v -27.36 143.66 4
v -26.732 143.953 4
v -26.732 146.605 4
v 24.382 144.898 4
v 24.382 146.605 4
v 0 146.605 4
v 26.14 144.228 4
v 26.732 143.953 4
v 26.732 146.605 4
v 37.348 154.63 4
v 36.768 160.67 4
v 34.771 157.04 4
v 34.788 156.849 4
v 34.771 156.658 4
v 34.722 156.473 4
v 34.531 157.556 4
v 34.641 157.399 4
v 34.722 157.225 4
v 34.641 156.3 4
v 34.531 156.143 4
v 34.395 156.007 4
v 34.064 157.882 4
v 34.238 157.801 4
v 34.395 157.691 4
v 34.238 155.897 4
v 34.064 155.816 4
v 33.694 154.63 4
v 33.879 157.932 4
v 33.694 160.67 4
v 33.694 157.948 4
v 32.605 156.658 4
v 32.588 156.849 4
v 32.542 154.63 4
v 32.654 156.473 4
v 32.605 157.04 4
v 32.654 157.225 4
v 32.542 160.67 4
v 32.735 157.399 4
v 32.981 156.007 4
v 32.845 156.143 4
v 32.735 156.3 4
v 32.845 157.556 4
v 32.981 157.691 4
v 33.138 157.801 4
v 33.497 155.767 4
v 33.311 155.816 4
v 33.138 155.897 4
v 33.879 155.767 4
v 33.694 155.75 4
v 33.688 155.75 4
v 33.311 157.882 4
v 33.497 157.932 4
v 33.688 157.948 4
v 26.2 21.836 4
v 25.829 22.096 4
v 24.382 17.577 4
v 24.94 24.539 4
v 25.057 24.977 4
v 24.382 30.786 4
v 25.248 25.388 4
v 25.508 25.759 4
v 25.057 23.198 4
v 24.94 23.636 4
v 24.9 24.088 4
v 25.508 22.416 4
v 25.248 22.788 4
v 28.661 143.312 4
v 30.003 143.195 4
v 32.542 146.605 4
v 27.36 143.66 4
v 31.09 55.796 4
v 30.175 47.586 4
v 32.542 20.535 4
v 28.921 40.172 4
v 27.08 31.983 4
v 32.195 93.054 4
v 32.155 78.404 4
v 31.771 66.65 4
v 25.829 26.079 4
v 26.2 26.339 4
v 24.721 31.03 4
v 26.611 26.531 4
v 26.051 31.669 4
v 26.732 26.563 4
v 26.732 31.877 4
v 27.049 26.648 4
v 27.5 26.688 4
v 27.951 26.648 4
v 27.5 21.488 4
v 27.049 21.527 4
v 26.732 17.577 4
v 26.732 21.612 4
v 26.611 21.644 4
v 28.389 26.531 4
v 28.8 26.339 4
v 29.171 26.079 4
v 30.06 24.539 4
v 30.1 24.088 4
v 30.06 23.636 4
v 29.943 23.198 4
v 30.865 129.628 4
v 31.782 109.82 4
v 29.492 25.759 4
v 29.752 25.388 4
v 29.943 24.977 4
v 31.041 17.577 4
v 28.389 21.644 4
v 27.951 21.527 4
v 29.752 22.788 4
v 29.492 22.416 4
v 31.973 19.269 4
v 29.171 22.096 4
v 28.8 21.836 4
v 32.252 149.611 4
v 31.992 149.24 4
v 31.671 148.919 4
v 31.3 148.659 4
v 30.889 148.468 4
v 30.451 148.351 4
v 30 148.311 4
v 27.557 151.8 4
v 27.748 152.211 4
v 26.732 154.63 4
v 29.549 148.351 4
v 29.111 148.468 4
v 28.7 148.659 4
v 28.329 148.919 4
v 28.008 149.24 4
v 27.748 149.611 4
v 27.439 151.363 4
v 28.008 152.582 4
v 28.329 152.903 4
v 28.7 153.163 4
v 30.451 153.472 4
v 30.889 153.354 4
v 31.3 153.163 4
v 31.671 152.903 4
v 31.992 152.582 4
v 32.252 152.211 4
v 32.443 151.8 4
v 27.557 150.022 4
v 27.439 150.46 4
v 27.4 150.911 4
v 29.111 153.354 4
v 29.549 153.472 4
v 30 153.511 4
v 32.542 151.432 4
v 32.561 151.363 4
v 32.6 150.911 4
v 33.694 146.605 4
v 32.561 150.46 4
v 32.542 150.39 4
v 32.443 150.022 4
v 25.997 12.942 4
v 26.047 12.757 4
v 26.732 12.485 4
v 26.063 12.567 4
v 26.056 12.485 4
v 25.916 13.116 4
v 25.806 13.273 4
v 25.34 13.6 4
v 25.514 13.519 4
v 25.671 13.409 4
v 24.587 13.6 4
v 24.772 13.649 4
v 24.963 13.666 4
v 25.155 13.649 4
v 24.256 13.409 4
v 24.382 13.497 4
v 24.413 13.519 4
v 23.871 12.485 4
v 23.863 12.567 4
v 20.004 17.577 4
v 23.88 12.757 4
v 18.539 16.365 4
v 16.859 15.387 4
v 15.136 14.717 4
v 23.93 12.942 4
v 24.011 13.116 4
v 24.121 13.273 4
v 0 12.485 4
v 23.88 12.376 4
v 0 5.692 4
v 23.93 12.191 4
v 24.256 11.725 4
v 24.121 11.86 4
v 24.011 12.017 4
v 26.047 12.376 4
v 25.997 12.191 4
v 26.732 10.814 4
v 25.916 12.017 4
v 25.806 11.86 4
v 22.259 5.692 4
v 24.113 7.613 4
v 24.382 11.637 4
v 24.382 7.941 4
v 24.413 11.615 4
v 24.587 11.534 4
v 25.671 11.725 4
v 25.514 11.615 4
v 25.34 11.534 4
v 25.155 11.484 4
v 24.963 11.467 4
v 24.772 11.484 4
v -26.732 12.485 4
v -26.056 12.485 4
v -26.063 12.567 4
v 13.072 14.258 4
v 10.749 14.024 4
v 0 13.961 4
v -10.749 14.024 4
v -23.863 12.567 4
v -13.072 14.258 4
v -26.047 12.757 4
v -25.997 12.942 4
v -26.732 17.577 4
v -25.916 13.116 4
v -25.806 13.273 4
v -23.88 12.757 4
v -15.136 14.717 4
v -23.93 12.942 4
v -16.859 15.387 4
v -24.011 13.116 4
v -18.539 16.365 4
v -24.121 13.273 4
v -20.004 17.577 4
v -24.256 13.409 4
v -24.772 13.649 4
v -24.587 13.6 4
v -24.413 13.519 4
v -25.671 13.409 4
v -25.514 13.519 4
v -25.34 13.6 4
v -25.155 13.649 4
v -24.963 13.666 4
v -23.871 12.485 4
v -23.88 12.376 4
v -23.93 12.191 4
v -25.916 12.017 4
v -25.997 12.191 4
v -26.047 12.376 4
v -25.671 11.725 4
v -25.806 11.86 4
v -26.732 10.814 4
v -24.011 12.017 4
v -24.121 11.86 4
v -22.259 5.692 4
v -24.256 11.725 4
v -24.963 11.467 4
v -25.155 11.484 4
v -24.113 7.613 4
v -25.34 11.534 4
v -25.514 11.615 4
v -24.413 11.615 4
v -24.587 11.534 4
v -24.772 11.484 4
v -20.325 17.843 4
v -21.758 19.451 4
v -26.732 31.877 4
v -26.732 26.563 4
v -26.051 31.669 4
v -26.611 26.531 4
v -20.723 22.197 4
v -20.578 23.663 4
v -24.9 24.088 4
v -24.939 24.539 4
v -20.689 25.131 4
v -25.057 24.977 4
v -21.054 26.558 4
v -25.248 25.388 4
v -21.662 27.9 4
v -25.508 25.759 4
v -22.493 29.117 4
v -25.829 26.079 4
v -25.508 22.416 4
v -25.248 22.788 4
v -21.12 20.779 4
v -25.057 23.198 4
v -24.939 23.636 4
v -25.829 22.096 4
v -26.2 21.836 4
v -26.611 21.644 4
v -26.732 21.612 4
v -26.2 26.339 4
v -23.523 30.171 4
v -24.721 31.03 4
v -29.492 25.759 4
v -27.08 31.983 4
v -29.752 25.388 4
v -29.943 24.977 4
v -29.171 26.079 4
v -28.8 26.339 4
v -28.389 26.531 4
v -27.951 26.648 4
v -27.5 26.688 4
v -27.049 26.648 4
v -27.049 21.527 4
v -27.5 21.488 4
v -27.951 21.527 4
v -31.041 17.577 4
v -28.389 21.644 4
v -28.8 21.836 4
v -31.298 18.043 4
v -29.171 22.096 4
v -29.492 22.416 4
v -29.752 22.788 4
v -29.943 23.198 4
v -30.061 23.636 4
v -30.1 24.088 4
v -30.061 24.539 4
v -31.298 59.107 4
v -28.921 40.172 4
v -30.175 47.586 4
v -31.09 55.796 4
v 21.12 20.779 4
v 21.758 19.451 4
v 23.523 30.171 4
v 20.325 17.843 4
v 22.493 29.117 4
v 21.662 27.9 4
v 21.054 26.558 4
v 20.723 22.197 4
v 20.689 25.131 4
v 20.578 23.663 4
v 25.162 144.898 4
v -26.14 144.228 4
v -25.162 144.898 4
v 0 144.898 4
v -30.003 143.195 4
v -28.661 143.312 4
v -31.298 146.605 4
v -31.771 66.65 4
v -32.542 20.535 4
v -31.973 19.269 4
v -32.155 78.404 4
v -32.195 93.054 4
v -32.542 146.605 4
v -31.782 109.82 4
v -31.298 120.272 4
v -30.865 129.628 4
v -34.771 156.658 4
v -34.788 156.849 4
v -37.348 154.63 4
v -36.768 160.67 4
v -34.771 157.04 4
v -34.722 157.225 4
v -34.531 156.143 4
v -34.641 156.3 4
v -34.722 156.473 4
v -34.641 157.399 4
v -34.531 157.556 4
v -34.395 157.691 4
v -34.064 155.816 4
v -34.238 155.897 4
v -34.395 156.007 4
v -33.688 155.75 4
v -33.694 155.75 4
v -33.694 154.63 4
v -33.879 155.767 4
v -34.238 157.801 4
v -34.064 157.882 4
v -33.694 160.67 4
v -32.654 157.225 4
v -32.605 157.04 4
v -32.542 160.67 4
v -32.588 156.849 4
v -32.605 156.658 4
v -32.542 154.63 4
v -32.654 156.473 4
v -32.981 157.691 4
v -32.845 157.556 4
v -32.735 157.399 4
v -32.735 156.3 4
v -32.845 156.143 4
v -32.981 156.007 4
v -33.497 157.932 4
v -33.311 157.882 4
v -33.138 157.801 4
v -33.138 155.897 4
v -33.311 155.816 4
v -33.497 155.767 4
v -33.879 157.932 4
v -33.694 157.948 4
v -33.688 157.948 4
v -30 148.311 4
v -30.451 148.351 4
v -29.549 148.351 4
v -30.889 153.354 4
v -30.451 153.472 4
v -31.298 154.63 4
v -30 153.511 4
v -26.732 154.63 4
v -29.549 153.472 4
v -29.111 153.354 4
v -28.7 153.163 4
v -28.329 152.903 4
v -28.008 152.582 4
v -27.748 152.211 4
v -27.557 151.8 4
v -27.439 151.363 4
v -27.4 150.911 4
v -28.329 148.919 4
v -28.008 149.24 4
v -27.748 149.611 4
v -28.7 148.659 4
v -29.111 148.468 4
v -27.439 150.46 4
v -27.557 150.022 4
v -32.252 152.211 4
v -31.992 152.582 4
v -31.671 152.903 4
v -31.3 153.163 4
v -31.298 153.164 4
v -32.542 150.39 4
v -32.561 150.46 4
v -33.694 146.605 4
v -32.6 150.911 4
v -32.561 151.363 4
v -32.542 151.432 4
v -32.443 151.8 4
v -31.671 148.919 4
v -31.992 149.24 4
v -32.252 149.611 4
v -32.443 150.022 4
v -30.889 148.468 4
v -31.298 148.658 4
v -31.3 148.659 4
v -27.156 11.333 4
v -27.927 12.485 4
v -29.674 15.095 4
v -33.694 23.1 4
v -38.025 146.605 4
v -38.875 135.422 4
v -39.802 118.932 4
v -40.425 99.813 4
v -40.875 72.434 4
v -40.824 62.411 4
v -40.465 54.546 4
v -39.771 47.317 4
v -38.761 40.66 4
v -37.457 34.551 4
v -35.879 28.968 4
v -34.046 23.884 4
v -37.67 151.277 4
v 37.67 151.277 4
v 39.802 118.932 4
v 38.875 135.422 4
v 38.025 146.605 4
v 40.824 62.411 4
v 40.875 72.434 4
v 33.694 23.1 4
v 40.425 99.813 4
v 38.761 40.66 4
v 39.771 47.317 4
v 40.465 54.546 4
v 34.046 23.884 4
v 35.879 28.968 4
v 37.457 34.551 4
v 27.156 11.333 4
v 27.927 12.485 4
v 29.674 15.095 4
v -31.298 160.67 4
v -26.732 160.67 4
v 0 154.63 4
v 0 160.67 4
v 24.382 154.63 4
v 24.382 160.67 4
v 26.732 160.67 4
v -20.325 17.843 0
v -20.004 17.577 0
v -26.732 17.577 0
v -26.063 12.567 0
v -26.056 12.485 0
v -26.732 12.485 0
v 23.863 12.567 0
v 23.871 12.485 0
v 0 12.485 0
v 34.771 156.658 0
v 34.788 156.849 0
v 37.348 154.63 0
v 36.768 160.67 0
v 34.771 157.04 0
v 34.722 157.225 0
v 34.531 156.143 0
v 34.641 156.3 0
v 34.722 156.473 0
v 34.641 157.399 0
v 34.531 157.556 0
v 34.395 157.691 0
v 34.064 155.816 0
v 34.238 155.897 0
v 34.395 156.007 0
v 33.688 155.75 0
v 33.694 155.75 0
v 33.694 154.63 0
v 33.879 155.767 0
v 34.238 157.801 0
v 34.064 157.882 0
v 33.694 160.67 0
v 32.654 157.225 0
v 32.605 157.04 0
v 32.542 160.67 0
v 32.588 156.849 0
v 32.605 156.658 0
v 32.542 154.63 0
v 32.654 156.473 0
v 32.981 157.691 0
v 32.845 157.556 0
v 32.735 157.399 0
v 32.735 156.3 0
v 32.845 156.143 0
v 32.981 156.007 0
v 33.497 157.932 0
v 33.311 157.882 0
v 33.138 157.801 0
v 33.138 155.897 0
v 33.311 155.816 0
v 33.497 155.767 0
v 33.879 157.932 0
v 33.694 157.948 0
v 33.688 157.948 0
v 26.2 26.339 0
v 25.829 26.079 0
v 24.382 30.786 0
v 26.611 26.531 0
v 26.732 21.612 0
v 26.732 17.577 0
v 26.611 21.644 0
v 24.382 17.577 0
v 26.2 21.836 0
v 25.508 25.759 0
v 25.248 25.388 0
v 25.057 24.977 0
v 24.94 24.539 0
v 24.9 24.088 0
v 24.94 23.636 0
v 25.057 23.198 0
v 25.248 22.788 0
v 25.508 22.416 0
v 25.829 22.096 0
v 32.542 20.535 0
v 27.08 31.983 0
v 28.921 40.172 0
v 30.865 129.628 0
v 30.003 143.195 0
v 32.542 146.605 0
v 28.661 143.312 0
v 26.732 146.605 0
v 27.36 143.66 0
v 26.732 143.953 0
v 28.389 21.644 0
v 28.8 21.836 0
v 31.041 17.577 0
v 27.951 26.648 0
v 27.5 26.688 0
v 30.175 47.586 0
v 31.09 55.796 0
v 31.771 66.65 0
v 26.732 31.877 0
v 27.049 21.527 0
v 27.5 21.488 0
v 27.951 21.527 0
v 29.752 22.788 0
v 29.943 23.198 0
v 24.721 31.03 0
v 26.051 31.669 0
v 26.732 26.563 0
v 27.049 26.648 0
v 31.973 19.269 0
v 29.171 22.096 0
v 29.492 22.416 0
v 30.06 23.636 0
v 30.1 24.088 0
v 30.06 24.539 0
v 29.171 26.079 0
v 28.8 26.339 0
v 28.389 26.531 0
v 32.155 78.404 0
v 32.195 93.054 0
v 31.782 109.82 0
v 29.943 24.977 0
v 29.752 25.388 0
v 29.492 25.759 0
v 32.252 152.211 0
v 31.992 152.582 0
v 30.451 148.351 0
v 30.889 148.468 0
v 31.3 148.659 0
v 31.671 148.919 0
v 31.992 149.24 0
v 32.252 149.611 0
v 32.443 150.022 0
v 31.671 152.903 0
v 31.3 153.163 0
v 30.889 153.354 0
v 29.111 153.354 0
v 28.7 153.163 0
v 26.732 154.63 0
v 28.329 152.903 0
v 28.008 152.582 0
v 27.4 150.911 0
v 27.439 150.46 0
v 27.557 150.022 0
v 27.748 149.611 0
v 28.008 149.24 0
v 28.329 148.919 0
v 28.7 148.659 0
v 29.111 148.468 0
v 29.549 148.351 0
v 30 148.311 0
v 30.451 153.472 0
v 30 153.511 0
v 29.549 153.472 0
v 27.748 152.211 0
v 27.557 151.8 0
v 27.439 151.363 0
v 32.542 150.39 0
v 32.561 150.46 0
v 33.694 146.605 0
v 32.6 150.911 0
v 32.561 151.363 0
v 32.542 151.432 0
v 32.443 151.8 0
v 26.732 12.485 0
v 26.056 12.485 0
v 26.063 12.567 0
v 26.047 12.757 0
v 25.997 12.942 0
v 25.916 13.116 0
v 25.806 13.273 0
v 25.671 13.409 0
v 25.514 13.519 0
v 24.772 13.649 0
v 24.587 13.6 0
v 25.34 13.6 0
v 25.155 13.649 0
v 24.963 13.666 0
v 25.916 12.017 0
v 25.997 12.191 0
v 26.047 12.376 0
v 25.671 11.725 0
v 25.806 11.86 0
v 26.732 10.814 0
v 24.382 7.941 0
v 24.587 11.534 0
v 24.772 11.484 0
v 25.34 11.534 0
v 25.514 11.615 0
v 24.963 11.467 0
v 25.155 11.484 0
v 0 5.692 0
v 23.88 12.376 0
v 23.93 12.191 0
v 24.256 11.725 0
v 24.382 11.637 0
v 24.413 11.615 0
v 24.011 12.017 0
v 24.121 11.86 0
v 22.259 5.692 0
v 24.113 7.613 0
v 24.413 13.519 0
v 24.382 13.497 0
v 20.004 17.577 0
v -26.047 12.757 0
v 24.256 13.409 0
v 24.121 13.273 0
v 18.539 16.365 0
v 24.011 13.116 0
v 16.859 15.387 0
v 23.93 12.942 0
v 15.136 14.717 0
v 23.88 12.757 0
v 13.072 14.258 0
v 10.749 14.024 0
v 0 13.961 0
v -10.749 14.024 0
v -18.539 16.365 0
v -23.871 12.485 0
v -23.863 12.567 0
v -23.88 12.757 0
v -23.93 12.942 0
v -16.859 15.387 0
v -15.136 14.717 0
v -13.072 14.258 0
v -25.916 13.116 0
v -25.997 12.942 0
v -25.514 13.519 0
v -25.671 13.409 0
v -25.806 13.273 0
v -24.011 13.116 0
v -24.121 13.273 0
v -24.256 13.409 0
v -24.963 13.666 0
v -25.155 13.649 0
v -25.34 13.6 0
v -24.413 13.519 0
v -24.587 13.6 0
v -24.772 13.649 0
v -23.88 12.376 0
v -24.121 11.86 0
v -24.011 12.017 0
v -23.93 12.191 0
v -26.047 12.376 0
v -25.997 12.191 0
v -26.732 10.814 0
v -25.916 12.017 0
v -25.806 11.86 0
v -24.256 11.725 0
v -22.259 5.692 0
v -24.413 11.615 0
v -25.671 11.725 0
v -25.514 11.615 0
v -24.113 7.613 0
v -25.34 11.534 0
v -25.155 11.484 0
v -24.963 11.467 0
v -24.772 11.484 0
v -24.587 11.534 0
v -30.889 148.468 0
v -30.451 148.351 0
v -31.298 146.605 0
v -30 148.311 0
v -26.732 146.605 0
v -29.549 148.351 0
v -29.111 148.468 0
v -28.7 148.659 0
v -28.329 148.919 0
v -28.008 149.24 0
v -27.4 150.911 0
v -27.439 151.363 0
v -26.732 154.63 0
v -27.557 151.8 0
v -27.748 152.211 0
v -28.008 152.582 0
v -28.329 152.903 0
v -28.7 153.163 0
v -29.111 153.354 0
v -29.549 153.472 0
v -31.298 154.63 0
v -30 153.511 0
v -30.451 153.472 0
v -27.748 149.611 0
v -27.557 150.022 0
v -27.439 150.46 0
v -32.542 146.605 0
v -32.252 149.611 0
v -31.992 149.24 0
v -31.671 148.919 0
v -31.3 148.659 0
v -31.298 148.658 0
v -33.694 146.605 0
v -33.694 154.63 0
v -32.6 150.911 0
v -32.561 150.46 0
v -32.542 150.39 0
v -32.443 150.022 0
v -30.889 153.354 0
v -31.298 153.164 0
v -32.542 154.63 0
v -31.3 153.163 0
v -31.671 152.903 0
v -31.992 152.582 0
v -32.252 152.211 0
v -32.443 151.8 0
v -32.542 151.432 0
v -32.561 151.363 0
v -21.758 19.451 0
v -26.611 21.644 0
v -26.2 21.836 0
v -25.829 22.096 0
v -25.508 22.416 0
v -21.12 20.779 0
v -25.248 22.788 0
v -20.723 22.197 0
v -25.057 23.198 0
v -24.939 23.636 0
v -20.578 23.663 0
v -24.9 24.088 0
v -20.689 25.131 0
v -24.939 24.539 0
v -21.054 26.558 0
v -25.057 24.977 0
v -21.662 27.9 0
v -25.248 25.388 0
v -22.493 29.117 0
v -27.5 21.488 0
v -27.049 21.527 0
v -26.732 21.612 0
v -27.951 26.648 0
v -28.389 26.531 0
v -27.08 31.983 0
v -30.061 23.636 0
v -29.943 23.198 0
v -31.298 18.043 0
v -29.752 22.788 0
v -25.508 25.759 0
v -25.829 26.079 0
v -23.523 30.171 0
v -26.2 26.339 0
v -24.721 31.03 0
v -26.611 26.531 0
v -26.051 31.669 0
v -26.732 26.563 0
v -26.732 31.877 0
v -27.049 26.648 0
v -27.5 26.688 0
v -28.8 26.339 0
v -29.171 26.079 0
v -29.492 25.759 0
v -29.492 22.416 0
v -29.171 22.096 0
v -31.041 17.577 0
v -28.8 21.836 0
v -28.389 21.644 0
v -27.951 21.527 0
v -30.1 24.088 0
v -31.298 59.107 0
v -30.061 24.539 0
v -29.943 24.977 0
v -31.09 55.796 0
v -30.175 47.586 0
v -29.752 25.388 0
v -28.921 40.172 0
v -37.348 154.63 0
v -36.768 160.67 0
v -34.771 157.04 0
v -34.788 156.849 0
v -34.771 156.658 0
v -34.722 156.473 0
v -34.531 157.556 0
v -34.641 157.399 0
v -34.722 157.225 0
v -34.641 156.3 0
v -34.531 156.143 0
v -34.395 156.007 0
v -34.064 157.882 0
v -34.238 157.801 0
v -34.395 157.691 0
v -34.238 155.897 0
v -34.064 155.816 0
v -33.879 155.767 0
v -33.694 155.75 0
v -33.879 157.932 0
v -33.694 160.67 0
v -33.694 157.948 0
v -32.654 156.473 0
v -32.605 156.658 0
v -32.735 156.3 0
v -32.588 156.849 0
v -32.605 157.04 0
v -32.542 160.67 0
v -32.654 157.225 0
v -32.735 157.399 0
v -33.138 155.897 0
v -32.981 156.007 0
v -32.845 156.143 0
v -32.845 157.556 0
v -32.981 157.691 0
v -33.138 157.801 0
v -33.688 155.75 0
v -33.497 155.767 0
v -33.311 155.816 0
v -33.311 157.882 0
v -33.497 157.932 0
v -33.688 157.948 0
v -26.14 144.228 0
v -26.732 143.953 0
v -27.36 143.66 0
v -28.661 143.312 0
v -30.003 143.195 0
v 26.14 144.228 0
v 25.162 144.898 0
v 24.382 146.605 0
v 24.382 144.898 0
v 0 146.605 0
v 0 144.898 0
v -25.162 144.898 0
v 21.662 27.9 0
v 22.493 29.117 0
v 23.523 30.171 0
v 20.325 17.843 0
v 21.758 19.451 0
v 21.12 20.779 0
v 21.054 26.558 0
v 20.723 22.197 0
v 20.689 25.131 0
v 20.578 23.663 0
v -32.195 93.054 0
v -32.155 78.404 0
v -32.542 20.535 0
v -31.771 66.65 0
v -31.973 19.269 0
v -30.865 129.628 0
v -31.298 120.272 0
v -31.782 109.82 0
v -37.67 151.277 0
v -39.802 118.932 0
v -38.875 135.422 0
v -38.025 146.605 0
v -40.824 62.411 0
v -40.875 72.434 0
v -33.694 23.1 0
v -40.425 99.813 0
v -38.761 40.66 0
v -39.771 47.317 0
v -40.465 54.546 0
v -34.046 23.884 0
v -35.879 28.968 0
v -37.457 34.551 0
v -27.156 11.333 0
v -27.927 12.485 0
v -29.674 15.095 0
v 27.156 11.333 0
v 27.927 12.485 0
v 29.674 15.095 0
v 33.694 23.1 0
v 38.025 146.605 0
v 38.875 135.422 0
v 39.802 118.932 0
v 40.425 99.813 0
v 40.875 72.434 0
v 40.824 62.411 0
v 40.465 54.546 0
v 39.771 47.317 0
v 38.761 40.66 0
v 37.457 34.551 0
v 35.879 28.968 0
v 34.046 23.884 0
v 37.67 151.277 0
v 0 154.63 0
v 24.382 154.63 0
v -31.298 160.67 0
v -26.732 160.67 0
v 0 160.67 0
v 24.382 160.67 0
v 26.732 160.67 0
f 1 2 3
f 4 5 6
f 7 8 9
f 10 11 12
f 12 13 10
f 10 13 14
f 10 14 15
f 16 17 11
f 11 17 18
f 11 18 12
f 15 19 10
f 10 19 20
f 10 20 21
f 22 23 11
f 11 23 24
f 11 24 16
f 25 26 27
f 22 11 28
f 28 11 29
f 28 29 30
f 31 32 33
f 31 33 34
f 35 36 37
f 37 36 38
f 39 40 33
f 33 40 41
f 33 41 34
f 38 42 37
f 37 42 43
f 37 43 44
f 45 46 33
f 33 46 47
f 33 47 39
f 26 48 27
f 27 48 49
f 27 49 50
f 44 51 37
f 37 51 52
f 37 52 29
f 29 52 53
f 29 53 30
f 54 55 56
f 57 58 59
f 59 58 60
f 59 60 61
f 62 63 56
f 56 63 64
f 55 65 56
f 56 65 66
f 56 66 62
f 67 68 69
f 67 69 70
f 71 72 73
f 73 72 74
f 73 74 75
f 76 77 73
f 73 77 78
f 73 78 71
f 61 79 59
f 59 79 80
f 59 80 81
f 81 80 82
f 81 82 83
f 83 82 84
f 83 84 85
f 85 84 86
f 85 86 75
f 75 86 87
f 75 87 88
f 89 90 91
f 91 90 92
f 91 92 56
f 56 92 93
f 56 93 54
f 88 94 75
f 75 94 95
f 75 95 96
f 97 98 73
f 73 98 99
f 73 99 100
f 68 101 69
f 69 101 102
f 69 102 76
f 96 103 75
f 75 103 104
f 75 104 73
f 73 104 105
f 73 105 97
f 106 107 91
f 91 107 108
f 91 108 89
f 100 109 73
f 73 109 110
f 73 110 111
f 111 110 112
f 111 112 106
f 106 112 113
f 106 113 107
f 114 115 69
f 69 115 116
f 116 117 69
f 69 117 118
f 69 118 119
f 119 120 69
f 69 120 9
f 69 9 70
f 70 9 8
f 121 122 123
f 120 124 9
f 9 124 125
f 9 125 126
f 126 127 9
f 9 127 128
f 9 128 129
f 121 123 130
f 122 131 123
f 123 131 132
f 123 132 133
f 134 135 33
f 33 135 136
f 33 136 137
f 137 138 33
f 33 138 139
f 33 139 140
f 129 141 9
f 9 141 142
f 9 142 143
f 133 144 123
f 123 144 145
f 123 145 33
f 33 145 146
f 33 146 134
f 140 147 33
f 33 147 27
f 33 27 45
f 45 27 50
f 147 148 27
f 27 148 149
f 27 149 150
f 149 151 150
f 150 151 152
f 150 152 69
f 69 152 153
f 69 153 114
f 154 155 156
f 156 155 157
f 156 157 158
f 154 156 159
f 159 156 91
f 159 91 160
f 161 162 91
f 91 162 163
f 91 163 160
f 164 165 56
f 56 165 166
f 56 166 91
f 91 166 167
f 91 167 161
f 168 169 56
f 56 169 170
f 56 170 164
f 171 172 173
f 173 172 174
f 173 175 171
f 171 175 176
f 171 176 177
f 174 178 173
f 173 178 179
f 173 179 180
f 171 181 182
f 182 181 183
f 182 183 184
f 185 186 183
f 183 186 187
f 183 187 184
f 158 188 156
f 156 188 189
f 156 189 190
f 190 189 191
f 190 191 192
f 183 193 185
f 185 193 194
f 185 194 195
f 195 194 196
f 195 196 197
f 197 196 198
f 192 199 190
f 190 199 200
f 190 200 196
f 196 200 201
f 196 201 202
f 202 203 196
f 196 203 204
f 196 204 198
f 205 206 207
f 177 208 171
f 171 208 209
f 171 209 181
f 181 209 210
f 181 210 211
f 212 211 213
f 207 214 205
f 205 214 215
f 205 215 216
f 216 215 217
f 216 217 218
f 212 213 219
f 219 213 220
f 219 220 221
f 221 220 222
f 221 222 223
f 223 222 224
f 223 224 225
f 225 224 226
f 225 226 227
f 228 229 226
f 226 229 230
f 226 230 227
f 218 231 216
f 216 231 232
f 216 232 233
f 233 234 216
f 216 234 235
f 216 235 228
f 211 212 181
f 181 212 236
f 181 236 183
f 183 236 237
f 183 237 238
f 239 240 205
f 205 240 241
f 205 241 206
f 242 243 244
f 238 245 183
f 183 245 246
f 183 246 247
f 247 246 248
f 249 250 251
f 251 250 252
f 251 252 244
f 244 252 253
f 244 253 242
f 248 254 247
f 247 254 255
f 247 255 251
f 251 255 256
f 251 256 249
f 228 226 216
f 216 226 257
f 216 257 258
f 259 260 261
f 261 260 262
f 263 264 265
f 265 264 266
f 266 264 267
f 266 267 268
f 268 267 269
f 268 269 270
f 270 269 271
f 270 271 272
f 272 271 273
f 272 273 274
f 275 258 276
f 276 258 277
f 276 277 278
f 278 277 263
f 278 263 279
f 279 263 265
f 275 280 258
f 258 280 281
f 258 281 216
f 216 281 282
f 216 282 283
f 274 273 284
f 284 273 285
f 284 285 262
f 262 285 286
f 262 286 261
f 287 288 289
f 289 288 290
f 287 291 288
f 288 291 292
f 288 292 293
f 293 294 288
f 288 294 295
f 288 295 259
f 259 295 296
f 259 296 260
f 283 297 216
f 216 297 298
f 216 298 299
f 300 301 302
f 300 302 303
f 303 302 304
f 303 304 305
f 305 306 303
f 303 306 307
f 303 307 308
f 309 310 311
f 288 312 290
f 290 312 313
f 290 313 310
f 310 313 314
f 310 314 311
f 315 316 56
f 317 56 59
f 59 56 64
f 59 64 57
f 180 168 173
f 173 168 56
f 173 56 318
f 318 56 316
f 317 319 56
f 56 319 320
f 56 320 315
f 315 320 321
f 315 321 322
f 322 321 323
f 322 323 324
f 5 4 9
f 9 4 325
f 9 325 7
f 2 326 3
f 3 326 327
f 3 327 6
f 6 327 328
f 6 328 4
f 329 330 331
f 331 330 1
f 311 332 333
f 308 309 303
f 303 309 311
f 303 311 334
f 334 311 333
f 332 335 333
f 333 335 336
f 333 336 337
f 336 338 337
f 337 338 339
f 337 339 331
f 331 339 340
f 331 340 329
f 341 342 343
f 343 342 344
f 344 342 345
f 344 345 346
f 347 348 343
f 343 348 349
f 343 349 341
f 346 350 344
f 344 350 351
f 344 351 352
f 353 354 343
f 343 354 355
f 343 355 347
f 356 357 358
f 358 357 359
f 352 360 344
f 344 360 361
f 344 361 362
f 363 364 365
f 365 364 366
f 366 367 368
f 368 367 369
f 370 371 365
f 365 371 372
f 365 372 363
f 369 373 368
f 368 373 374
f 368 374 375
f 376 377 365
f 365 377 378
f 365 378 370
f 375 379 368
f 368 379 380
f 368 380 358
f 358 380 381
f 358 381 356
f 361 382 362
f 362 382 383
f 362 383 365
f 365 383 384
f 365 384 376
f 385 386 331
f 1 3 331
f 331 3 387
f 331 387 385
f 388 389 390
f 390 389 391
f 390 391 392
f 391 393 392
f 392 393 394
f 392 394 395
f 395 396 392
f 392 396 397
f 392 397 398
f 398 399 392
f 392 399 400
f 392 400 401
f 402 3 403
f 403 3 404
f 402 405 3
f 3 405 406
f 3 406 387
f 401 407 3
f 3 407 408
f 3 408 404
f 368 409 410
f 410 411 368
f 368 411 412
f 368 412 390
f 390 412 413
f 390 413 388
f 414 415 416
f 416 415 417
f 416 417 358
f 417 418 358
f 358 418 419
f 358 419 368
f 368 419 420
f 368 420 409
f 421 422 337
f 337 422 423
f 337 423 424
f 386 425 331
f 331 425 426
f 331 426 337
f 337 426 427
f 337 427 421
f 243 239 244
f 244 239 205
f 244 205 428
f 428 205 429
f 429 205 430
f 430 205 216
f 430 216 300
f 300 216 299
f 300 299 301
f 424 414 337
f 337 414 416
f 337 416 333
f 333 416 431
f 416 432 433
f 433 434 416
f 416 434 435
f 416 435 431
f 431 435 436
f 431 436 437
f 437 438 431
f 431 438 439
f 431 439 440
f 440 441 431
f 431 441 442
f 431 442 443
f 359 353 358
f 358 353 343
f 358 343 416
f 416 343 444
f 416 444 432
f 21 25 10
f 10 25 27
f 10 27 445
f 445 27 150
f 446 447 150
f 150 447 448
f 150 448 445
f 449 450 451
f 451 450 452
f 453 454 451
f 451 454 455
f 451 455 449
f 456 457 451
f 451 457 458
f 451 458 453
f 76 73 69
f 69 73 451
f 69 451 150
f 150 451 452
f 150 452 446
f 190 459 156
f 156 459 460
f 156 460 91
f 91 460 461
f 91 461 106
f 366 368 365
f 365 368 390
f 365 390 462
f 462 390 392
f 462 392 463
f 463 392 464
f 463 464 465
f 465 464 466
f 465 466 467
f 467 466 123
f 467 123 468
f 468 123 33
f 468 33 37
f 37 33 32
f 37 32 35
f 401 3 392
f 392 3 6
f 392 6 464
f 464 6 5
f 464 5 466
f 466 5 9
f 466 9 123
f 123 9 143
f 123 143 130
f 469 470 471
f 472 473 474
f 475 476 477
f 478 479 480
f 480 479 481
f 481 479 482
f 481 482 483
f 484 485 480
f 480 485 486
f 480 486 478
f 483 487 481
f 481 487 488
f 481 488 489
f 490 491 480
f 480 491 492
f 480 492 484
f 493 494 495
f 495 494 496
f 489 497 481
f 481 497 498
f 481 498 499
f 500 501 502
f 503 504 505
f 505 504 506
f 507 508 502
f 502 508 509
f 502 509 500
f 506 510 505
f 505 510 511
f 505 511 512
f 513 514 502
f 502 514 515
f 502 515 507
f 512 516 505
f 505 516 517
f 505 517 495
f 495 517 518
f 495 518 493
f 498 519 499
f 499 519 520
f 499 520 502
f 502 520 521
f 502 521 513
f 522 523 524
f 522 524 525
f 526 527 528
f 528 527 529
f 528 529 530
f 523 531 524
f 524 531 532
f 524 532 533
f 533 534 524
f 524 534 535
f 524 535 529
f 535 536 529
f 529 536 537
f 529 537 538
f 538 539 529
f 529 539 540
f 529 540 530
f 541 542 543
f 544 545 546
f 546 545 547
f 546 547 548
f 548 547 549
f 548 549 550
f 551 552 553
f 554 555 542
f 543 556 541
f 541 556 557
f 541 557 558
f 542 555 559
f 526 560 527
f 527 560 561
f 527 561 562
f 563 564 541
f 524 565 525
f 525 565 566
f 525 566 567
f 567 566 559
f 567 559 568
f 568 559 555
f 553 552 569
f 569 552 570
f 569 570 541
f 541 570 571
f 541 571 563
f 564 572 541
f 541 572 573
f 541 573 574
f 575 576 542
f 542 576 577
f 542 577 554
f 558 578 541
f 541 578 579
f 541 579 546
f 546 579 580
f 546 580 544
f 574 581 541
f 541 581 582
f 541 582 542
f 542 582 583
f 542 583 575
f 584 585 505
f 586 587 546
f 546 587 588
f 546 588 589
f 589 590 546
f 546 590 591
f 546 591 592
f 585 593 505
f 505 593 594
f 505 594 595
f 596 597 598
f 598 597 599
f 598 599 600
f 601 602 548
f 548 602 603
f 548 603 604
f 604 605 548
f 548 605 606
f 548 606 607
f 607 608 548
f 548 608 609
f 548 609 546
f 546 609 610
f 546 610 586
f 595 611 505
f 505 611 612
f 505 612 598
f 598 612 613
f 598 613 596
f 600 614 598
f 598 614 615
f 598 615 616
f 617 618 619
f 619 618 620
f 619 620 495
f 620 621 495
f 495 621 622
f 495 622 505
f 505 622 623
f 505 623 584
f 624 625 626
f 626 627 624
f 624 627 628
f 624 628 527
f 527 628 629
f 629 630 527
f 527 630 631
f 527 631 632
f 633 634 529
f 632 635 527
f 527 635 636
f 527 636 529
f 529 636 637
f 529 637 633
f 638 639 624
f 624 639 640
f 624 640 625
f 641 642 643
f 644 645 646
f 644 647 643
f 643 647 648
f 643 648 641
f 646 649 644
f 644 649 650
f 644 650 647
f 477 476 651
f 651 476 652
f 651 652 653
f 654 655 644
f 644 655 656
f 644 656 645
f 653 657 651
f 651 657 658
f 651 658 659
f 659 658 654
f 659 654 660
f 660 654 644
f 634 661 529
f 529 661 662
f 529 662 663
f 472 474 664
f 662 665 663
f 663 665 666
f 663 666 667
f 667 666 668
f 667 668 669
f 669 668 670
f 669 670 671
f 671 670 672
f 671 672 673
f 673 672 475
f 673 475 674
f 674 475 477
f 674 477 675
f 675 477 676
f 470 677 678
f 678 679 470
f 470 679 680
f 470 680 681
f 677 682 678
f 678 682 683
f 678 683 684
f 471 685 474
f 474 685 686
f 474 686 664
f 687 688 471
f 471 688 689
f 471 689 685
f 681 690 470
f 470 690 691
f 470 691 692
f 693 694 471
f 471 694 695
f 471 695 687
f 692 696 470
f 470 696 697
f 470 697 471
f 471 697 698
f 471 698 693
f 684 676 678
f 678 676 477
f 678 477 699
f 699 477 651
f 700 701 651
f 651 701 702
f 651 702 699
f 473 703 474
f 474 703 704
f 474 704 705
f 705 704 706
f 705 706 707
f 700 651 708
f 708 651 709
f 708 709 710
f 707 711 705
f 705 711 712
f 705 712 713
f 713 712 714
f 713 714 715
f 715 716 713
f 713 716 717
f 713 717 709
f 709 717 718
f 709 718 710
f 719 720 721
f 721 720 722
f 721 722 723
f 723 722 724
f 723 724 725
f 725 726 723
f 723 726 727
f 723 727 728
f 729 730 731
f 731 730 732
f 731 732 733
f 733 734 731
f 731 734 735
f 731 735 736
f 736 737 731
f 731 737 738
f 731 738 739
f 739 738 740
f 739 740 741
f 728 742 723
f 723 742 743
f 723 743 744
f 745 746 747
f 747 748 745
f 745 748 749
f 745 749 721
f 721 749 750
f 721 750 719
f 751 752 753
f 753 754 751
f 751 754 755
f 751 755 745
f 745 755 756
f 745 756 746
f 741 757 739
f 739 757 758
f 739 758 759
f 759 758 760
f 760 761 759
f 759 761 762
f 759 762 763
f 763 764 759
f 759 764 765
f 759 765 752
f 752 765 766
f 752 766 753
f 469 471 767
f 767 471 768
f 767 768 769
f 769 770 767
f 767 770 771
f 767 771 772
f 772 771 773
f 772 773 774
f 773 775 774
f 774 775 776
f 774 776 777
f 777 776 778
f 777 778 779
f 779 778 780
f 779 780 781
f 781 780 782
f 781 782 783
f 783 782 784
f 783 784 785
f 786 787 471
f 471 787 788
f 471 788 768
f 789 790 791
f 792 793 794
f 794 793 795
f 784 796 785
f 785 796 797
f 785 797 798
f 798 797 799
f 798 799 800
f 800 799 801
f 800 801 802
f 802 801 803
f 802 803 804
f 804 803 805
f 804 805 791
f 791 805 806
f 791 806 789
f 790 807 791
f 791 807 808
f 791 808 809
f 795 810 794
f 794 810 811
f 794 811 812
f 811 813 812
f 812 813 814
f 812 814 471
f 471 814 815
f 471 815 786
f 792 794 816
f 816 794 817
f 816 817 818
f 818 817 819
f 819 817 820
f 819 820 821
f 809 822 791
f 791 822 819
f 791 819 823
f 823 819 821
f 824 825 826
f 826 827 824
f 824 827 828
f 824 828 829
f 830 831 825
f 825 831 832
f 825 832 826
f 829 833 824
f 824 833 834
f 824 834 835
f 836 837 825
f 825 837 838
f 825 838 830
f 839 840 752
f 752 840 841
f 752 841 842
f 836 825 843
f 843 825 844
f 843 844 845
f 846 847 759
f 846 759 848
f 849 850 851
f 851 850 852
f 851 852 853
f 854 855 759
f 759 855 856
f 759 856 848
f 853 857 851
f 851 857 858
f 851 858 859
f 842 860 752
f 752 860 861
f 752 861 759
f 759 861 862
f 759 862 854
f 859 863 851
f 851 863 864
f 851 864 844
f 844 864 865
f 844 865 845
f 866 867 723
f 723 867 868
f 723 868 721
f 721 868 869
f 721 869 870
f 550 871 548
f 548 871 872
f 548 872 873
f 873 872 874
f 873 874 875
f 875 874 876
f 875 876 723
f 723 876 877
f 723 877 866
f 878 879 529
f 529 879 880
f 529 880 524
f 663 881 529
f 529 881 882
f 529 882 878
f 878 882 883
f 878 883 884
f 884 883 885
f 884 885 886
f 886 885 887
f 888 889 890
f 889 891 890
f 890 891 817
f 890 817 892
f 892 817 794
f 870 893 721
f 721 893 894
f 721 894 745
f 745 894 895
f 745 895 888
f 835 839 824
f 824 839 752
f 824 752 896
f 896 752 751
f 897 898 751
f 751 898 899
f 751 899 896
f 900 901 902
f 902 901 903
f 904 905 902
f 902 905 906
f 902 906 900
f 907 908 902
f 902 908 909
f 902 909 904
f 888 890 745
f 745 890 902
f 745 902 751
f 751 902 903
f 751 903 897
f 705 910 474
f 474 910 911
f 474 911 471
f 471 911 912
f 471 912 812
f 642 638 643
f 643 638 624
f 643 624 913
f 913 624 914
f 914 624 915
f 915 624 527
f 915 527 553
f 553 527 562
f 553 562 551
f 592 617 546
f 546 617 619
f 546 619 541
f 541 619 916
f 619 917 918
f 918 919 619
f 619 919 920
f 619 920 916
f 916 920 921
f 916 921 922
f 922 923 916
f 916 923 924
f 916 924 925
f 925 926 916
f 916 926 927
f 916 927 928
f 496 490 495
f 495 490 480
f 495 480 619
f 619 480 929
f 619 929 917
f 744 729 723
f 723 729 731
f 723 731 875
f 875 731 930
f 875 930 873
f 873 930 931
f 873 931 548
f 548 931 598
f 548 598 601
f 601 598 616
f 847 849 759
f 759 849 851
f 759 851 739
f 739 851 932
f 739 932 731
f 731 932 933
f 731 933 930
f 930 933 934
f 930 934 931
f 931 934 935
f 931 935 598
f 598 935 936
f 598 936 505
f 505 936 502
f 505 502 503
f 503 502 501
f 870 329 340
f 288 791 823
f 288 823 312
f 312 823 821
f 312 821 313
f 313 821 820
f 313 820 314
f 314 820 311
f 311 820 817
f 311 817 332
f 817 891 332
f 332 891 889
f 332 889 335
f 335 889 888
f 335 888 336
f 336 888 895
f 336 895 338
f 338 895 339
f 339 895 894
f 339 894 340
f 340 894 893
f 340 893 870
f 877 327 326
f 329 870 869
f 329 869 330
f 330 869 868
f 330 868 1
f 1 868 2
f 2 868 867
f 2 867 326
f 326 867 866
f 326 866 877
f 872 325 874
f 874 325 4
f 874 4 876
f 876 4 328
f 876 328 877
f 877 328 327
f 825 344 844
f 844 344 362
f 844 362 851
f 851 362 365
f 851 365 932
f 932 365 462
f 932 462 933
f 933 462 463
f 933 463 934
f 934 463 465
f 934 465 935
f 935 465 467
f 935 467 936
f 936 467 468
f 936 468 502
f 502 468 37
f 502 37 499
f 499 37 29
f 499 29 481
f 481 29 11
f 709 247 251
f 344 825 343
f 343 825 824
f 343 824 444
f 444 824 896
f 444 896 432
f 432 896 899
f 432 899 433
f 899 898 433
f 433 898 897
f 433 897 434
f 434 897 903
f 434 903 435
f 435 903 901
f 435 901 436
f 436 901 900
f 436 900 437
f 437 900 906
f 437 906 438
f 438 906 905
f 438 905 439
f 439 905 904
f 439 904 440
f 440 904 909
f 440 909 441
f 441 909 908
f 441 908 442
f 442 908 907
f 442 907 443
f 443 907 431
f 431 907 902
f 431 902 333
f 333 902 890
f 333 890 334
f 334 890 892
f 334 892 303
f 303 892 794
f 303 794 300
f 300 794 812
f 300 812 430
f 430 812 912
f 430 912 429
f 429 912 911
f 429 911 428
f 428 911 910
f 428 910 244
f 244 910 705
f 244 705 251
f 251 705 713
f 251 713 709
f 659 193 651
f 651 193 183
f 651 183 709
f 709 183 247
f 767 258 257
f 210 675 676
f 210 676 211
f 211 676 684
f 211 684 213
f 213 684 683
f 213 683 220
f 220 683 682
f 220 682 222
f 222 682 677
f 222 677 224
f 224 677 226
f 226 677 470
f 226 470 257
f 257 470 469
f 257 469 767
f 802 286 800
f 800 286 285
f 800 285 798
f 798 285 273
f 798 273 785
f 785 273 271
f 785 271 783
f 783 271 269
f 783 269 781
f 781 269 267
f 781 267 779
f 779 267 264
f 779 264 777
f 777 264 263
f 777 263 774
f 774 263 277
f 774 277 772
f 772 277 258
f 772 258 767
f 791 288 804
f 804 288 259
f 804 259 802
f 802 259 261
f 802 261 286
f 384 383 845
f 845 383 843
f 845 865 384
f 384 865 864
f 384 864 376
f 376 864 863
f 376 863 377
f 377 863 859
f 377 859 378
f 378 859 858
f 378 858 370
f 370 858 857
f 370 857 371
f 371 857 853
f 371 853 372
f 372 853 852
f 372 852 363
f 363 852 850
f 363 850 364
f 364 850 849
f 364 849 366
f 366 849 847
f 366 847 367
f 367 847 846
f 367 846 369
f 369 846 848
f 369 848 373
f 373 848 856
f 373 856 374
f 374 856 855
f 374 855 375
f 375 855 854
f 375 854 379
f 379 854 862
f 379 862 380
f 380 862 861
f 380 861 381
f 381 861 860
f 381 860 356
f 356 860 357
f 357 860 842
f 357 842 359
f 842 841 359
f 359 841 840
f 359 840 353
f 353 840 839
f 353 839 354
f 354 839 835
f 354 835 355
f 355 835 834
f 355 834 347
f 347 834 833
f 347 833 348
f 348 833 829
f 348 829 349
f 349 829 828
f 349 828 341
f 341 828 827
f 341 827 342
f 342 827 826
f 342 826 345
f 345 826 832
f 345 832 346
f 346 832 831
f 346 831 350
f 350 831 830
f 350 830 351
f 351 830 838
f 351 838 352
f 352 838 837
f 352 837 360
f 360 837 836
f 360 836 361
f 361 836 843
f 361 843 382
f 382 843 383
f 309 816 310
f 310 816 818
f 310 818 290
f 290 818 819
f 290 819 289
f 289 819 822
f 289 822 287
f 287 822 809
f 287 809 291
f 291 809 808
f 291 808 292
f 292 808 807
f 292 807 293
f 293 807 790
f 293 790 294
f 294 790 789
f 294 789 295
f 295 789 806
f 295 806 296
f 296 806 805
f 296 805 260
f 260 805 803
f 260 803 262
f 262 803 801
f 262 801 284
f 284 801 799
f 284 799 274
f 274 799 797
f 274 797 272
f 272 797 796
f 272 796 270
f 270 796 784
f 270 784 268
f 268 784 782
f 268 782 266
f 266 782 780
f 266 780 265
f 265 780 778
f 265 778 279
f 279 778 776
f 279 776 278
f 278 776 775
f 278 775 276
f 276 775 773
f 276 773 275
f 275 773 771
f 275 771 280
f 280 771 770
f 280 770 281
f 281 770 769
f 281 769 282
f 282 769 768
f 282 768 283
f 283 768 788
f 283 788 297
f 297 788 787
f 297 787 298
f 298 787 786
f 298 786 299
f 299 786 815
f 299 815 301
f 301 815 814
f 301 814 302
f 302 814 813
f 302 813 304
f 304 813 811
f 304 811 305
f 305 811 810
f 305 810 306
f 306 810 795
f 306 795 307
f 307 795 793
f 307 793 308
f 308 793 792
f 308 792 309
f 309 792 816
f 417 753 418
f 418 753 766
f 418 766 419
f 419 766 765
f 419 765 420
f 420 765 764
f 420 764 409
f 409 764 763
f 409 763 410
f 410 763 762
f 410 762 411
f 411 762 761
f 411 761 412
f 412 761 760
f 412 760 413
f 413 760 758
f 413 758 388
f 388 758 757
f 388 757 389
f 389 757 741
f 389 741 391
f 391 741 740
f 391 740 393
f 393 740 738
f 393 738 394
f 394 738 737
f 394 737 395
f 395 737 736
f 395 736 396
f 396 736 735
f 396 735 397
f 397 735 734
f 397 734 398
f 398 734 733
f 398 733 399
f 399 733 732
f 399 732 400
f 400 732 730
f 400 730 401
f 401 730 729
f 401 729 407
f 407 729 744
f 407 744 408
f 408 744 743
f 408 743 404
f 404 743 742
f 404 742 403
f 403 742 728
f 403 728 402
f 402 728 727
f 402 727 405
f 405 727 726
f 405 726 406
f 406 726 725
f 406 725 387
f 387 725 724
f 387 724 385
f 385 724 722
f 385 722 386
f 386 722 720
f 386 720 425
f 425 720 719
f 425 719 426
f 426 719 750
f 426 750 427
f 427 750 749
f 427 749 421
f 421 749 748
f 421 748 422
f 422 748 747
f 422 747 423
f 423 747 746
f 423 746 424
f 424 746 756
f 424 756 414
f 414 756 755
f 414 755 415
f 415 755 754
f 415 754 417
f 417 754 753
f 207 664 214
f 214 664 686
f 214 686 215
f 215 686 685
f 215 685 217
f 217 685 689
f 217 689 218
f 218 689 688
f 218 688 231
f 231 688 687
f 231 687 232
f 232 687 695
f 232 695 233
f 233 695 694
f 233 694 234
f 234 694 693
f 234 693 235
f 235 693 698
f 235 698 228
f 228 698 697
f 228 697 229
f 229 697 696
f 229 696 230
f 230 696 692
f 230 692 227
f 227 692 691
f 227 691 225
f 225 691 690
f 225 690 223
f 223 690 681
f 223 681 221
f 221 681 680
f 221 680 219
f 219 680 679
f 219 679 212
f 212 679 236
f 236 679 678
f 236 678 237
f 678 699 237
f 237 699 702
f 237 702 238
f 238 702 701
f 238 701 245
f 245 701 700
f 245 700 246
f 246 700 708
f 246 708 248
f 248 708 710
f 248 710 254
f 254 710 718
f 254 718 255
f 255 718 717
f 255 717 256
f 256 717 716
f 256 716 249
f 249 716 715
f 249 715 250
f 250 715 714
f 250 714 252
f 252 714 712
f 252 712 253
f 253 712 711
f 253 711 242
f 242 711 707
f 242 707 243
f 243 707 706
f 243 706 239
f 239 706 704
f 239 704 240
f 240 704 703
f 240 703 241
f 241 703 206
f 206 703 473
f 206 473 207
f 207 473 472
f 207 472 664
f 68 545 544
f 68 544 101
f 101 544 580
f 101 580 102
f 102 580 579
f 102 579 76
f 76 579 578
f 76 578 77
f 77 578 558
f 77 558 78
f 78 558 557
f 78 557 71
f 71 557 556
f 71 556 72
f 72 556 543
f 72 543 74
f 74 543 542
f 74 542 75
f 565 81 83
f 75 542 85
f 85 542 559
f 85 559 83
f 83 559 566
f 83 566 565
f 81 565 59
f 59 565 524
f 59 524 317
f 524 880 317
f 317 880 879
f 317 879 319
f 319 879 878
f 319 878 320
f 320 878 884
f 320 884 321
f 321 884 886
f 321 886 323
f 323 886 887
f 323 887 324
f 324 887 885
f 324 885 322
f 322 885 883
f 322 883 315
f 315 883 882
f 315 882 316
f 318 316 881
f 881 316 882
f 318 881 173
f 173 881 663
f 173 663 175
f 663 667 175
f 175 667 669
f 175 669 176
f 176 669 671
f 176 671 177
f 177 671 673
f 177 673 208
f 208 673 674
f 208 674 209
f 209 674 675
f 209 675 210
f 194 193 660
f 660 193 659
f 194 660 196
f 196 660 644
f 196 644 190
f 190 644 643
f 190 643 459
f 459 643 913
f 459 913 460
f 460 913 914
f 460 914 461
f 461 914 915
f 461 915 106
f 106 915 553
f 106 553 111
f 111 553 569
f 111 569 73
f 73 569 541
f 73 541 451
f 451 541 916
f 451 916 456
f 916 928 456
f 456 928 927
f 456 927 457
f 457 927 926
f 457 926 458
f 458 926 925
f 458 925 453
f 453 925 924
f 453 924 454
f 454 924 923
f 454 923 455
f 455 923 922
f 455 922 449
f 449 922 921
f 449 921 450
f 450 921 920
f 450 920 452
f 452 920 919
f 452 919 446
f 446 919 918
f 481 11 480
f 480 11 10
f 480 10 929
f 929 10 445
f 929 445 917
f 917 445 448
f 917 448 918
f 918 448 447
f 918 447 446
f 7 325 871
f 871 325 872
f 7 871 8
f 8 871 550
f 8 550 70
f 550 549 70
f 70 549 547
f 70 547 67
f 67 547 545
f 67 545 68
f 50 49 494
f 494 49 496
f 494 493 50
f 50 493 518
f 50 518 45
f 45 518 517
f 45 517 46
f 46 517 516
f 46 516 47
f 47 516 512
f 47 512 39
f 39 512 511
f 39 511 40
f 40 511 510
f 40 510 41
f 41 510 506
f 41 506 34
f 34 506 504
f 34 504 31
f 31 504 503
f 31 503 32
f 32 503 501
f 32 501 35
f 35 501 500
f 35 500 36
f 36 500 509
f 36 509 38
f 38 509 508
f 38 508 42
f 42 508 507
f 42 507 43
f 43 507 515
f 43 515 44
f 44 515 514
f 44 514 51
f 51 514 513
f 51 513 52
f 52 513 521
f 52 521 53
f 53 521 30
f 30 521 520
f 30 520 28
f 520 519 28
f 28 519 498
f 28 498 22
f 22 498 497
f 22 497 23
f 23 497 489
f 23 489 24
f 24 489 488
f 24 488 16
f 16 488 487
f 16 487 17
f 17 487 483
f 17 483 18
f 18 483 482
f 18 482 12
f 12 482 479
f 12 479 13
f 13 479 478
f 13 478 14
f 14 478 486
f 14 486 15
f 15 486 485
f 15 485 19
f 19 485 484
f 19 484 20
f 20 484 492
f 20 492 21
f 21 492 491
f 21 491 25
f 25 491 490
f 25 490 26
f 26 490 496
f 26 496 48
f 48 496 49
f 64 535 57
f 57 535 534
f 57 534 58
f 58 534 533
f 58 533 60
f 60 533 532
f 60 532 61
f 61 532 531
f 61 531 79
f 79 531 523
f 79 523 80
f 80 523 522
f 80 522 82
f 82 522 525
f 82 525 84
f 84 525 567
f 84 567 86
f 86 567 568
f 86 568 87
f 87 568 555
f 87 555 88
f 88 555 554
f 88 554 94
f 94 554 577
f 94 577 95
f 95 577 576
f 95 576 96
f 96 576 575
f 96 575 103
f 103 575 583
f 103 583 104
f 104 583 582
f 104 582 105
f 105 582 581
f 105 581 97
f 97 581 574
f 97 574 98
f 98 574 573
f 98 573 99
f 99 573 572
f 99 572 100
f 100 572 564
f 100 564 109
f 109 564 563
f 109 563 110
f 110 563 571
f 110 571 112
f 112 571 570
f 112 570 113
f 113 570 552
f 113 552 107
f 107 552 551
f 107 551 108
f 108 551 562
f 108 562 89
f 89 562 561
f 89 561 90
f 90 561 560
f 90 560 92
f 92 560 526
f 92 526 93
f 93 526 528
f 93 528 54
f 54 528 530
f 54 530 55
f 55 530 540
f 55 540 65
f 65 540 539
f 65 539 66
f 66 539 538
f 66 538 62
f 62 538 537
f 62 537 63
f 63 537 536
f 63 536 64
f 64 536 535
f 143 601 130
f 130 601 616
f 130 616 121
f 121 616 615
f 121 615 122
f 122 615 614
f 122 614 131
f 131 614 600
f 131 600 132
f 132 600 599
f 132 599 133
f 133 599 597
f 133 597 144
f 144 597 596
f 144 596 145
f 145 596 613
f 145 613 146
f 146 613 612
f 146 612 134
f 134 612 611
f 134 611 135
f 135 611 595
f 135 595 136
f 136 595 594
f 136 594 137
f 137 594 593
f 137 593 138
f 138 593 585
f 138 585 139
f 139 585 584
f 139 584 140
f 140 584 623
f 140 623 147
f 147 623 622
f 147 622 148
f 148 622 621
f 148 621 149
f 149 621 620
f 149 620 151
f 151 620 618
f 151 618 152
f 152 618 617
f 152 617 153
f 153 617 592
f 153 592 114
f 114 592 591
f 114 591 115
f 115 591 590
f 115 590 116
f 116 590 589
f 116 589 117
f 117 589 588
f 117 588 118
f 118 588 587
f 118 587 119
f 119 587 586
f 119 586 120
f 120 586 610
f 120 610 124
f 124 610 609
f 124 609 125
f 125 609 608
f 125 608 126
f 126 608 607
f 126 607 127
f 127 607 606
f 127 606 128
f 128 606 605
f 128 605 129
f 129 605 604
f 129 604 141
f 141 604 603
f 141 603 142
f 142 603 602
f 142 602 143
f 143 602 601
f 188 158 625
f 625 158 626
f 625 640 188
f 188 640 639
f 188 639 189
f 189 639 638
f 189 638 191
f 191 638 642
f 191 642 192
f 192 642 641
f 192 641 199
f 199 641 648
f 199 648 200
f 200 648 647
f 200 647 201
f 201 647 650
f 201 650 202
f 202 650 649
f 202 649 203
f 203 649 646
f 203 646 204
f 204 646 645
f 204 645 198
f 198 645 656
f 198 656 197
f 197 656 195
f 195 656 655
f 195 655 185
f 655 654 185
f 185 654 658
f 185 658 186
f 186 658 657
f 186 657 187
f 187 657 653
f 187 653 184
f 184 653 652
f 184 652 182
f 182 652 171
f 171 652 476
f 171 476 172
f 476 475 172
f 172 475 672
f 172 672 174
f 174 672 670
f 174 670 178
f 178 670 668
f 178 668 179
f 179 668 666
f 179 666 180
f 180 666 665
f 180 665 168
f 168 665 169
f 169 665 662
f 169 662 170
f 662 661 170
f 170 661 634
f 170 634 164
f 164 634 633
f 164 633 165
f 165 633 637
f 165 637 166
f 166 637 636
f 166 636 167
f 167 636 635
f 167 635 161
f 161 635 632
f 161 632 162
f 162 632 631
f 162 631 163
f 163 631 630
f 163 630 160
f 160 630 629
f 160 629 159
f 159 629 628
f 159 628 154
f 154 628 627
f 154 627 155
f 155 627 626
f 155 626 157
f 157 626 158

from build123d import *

# Parameters (mm, degrees)
SKETCH1_R           = 2.6
SKETCH1_RX          = 1.1
SKETCH1_RY          = 1.09932991
BOSS_EXTRUDE1_DEPTH = 4


with BuildPart() as part:
    # Sketch1 → Boss-Extrude1 (new body)
    with BuildSketch(Plane.XY):
        with BuildLine():
            Line((0, 5.692059911), (0, 13.960803037))
            add(Edge.make_bspline(
                [(0, 13.960803037), (-10.899339386, 13.960803037), (-11.487218892, 13.959349751), (-16.235559114, 14.8374748), (-19.42281347, 16.455642741), (-21.75810774, 19.451339794)],
                knots=[0, 0, 0, 0, 0.128416155, 0.156586267, 0.281701124, 0.281701124, 0.281701124, 0.281701124], degree=3))
            add(Edge.make_bspline(
                [(-21.75810774, 19.451339794), (-15.903861103, 29.32920361), (-27.080177886, 31.983395584)],
                knots=[5.748445187, 5.748445187, 5.748445187, 7.620680331, 7.620680331, 7.620680331], degree=2, weights=[1, 0.592918858, 1]))
            add(Edge.make_bspline(
                [(-27.080177886, 31.983395584), (-28.706578592, 38.396584339), (-30.515490185, 47.815165764), (-32.416424554, 73.43436988), (-32.552747016, 100.120175104), (-30.539348615, 136.048346927), (-30.002573633, 143.19486067)],
                knots=[0.399896913, 0.399896913, 0.399896913, 0.399896913, 0.535865385, 0.582419791, 0.865440975, 0.98918278, 0.98918278, 0.98918278, 0.98918278], degree=3))
            add(Edge.make_bspline(
                [(-30.002573633, 143.19486067), (-27.281829786, 143.193954313), (-25.161578064, 144.897902642)],
                knots=[1.570462995, 1.570462995, 1.570462995, 2.248058784, 2.248058784, 2.248058784], degree=2, weights=[1, 0.943154871, 1]))
            Line((-25.161578064, 144.897902642), (0, 144.897902642))
            Line((0, 144.897902642), (0, 160.670428059))
            Line((0, 160.670428059), (-36.767608898, 160.670428059))
            add(Edge.make_bspline(
                [(-36.767608898, 160.670428059), (-37.046640535, 158.607809885), (-40.071993295, 127.385925043), (-40.803180234, 77.536053485), (-41.343202954, 45.35813169), (-33.894171557, 17.037301791), (-22.259388115, 5.692059911)],
                knots=[0, 0, 0, 0, 0.322711204, 0.500184687, 0.698743588, 1, 1, 1, 1], degree=3))
            Line((-22.259388115, 5.692059911), (0, 5.692059911))
        make_face()
        with Locations((-27.5, 24.087668969)):
            Circle(SKETCH1_R, mode=Mode.SUBTRACT)
        with Locations((-30, 150.911100024)):
            Circle(SKETCH1_R, mode=Mode.SUBTRACT)
        with Locations(Location((-33.687866417, 156.849138163), (0, 0, 180))):
            Ellipse(SKETCH1_RX, SKETCH1_RY, mode=Mode.SUBTRACT)
        with Locations(Location((-24.963406725, 12.566629974), (0, 0, 180))):
            Ellipse(SKETCH1_RX, SKETCH1_RY, mode=Mode.SUBTRACT)
    boss_extrude1 = extrude(amount=BOSS_EXTRUDE1_DEPTH)

    # Mirror1: Boss-Extrude1 across plane
    add(boss_extrude1.mirror(Plane(origin=(0, 160.670428059, 4), x_dir=(0, 0, 1), z_dir=(-1, 0, 0))))


solid = part.part
